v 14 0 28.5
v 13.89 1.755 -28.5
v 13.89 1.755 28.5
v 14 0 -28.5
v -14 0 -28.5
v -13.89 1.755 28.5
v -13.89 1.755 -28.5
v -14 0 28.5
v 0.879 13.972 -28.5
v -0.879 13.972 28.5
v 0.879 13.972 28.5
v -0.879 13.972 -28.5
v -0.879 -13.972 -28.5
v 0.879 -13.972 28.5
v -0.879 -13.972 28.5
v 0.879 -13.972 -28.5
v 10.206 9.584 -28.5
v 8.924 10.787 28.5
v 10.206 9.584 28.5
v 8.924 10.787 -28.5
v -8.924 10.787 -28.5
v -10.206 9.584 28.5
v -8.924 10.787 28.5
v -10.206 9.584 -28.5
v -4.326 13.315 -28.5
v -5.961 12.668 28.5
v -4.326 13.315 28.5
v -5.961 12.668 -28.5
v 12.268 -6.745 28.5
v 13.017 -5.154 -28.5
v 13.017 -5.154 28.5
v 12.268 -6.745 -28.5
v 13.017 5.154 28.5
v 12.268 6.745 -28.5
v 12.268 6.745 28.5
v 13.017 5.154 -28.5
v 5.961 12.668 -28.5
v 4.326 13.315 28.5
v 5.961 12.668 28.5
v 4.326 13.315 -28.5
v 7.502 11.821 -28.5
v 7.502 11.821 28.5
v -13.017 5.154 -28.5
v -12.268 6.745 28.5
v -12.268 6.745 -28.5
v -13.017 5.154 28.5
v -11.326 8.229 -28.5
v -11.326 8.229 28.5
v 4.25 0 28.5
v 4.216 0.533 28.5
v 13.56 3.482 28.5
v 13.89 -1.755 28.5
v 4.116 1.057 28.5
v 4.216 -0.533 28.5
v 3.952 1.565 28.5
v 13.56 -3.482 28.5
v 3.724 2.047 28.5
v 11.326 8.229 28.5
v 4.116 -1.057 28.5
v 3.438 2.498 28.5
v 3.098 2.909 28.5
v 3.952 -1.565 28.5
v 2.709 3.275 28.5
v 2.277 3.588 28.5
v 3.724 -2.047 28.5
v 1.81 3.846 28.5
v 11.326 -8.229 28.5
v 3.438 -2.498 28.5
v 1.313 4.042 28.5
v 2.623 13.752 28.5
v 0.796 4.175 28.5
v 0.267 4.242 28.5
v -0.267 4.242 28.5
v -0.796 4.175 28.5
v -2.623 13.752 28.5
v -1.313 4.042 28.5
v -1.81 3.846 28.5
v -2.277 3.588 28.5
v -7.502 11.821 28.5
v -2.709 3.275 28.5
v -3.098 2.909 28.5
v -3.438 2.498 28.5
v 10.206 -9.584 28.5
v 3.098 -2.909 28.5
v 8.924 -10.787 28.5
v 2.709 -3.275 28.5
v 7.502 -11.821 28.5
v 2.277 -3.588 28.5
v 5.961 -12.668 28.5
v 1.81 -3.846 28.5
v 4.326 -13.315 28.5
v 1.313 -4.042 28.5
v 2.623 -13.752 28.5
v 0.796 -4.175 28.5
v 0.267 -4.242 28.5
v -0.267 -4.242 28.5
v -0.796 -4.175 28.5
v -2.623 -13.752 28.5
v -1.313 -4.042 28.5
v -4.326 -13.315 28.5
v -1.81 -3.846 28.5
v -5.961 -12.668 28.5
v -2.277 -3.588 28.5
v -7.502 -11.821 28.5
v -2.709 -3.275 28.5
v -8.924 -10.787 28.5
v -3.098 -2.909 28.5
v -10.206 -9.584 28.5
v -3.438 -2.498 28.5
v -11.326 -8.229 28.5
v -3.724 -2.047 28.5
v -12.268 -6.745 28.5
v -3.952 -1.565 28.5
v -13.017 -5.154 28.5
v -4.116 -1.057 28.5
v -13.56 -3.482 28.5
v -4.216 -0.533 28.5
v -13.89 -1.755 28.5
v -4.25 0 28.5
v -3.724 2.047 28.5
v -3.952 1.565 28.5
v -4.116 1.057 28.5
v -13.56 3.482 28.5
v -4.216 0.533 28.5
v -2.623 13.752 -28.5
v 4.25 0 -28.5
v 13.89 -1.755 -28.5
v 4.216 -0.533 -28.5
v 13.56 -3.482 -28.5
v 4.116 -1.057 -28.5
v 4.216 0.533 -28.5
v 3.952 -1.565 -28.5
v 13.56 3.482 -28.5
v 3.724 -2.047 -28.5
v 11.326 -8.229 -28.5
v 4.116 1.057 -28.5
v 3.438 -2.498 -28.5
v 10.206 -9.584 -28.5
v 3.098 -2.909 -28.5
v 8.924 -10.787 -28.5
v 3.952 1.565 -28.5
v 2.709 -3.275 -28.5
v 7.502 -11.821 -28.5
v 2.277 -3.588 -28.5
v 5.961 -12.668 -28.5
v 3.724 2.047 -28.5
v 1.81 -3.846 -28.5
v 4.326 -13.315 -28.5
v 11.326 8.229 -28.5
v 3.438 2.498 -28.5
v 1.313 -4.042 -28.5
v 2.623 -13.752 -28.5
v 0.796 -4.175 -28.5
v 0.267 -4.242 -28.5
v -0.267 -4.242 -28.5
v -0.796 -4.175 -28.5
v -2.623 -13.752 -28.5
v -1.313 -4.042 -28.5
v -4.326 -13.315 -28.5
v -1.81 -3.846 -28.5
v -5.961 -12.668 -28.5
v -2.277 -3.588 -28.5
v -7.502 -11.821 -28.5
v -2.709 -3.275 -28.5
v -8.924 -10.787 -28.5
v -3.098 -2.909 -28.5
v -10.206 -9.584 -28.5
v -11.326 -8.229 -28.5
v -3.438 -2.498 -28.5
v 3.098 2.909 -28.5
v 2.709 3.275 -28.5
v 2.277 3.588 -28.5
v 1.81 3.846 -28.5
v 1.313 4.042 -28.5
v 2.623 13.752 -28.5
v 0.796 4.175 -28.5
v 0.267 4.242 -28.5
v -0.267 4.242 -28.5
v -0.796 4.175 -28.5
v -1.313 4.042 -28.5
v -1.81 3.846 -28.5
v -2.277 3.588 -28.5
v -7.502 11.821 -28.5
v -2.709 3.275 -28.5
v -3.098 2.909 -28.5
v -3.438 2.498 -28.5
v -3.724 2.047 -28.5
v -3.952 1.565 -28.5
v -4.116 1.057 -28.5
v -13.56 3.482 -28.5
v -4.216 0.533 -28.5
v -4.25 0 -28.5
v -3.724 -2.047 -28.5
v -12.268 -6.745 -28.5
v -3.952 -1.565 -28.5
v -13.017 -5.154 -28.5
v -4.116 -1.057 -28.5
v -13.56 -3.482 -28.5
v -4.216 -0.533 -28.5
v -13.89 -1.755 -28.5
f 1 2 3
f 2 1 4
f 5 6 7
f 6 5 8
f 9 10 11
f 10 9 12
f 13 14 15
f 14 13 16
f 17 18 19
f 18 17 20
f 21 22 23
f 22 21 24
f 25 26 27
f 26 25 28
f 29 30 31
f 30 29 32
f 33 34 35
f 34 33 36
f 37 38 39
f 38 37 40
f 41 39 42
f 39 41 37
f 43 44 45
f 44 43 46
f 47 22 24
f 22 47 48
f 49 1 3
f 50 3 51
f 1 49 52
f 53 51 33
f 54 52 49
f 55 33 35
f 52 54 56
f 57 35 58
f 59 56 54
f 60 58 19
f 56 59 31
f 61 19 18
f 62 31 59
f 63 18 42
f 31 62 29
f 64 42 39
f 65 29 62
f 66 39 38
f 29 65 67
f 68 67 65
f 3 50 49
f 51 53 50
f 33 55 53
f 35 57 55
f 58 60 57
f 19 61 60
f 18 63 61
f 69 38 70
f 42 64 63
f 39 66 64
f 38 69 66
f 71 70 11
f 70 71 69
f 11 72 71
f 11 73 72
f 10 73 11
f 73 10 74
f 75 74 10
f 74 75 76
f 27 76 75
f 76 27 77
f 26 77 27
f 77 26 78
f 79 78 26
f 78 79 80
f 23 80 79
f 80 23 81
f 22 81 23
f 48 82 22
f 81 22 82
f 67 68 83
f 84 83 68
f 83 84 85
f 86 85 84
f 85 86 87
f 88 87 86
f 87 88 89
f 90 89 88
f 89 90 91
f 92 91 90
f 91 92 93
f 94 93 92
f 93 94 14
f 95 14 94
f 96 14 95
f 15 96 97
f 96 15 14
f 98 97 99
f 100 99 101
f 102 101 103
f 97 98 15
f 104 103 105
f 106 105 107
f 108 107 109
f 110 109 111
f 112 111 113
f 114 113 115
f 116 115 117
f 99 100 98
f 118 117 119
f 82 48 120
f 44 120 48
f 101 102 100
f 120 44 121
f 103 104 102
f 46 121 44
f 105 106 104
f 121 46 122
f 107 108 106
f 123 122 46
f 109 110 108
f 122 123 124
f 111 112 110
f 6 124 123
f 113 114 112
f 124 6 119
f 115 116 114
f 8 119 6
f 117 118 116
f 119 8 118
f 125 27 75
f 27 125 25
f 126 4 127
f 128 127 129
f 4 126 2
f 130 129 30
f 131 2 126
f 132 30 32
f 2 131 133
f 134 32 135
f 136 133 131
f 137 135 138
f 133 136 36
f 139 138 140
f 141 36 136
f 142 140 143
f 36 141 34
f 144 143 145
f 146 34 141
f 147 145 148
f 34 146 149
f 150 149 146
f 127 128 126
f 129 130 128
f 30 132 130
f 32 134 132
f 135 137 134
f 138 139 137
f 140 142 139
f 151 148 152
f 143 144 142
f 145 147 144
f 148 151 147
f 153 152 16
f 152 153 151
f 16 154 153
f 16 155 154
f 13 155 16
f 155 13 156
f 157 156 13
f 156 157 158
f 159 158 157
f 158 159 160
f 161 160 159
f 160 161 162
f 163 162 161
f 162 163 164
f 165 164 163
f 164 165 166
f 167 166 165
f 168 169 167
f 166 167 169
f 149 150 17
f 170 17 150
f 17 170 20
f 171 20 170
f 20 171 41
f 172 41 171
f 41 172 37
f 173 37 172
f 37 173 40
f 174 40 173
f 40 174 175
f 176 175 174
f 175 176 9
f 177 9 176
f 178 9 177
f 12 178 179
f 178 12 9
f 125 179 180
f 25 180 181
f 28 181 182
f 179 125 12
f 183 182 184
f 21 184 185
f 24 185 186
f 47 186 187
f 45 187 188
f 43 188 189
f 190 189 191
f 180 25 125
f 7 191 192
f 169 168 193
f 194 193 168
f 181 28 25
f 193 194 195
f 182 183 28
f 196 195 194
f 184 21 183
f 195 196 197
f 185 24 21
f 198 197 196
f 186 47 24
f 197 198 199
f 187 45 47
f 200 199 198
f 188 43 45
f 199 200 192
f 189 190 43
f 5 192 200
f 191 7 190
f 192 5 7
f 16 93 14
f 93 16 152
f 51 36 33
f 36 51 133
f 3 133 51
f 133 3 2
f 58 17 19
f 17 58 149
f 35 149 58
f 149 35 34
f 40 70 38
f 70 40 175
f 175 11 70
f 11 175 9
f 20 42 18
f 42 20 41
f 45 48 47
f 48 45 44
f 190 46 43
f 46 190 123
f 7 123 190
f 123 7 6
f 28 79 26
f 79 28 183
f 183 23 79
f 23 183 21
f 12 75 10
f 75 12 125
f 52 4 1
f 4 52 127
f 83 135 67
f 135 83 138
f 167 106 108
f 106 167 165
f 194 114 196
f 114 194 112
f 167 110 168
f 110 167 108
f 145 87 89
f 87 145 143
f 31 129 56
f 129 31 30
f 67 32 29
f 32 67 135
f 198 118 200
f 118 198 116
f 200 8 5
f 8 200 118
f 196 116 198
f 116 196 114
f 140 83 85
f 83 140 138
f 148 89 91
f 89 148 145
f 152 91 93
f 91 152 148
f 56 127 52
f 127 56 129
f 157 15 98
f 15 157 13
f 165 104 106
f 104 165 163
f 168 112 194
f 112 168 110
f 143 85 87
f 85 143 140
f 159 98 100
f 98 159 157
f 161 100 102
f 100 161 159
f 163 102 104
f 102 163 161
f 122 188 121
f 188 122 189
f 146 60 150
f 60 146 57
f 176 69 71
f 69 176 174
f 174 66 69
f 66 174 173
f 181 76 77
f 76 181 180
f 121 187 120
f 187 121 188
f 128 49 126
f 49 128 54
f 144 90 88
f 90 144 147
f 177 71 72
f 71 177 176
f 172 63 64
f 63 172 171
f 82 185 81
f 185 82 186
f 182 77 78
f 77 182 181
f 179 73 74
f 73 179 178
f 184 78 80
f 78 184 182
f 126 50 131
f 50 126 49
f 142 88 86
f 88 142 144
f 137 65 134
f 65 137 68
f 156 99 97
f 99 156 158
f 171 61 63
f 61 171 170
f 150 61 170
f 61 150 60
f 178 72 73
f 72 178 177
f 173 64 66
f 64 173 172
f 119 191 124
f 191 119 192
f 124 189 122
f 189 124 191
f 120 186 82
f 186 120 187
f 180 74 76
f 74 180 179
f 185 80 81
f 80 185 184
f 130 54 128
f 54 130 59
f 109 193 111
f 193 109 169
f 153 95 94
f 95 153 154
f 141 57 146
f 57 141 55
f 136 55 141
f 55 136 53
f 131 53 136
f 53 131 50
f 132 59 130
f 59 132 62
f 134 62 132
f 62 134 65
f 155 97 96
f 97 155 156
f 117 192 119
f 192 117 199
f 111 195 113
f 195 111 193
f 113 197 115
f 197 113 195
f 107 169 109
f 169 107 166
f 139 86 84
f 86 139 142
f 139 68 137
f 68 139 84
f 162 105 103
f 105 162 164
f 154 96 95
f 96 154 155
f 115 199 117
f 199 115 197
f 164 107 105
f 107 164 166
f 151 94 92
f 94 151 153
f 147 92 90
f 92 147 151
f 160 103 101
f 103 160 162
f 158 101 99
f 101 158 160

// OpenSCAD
$fn = 50;


difference() {
	union() {
		translate(v = [0, 0, -28.5000000000]) {
			cylinder(h = 57, r = 14.0000000000);
		}
	}
	union() {
		translate(v = [0, 0, -100.0000000000]) {
			cylinder(h = 200, r = 4.2500000000);
		}
	}
}
